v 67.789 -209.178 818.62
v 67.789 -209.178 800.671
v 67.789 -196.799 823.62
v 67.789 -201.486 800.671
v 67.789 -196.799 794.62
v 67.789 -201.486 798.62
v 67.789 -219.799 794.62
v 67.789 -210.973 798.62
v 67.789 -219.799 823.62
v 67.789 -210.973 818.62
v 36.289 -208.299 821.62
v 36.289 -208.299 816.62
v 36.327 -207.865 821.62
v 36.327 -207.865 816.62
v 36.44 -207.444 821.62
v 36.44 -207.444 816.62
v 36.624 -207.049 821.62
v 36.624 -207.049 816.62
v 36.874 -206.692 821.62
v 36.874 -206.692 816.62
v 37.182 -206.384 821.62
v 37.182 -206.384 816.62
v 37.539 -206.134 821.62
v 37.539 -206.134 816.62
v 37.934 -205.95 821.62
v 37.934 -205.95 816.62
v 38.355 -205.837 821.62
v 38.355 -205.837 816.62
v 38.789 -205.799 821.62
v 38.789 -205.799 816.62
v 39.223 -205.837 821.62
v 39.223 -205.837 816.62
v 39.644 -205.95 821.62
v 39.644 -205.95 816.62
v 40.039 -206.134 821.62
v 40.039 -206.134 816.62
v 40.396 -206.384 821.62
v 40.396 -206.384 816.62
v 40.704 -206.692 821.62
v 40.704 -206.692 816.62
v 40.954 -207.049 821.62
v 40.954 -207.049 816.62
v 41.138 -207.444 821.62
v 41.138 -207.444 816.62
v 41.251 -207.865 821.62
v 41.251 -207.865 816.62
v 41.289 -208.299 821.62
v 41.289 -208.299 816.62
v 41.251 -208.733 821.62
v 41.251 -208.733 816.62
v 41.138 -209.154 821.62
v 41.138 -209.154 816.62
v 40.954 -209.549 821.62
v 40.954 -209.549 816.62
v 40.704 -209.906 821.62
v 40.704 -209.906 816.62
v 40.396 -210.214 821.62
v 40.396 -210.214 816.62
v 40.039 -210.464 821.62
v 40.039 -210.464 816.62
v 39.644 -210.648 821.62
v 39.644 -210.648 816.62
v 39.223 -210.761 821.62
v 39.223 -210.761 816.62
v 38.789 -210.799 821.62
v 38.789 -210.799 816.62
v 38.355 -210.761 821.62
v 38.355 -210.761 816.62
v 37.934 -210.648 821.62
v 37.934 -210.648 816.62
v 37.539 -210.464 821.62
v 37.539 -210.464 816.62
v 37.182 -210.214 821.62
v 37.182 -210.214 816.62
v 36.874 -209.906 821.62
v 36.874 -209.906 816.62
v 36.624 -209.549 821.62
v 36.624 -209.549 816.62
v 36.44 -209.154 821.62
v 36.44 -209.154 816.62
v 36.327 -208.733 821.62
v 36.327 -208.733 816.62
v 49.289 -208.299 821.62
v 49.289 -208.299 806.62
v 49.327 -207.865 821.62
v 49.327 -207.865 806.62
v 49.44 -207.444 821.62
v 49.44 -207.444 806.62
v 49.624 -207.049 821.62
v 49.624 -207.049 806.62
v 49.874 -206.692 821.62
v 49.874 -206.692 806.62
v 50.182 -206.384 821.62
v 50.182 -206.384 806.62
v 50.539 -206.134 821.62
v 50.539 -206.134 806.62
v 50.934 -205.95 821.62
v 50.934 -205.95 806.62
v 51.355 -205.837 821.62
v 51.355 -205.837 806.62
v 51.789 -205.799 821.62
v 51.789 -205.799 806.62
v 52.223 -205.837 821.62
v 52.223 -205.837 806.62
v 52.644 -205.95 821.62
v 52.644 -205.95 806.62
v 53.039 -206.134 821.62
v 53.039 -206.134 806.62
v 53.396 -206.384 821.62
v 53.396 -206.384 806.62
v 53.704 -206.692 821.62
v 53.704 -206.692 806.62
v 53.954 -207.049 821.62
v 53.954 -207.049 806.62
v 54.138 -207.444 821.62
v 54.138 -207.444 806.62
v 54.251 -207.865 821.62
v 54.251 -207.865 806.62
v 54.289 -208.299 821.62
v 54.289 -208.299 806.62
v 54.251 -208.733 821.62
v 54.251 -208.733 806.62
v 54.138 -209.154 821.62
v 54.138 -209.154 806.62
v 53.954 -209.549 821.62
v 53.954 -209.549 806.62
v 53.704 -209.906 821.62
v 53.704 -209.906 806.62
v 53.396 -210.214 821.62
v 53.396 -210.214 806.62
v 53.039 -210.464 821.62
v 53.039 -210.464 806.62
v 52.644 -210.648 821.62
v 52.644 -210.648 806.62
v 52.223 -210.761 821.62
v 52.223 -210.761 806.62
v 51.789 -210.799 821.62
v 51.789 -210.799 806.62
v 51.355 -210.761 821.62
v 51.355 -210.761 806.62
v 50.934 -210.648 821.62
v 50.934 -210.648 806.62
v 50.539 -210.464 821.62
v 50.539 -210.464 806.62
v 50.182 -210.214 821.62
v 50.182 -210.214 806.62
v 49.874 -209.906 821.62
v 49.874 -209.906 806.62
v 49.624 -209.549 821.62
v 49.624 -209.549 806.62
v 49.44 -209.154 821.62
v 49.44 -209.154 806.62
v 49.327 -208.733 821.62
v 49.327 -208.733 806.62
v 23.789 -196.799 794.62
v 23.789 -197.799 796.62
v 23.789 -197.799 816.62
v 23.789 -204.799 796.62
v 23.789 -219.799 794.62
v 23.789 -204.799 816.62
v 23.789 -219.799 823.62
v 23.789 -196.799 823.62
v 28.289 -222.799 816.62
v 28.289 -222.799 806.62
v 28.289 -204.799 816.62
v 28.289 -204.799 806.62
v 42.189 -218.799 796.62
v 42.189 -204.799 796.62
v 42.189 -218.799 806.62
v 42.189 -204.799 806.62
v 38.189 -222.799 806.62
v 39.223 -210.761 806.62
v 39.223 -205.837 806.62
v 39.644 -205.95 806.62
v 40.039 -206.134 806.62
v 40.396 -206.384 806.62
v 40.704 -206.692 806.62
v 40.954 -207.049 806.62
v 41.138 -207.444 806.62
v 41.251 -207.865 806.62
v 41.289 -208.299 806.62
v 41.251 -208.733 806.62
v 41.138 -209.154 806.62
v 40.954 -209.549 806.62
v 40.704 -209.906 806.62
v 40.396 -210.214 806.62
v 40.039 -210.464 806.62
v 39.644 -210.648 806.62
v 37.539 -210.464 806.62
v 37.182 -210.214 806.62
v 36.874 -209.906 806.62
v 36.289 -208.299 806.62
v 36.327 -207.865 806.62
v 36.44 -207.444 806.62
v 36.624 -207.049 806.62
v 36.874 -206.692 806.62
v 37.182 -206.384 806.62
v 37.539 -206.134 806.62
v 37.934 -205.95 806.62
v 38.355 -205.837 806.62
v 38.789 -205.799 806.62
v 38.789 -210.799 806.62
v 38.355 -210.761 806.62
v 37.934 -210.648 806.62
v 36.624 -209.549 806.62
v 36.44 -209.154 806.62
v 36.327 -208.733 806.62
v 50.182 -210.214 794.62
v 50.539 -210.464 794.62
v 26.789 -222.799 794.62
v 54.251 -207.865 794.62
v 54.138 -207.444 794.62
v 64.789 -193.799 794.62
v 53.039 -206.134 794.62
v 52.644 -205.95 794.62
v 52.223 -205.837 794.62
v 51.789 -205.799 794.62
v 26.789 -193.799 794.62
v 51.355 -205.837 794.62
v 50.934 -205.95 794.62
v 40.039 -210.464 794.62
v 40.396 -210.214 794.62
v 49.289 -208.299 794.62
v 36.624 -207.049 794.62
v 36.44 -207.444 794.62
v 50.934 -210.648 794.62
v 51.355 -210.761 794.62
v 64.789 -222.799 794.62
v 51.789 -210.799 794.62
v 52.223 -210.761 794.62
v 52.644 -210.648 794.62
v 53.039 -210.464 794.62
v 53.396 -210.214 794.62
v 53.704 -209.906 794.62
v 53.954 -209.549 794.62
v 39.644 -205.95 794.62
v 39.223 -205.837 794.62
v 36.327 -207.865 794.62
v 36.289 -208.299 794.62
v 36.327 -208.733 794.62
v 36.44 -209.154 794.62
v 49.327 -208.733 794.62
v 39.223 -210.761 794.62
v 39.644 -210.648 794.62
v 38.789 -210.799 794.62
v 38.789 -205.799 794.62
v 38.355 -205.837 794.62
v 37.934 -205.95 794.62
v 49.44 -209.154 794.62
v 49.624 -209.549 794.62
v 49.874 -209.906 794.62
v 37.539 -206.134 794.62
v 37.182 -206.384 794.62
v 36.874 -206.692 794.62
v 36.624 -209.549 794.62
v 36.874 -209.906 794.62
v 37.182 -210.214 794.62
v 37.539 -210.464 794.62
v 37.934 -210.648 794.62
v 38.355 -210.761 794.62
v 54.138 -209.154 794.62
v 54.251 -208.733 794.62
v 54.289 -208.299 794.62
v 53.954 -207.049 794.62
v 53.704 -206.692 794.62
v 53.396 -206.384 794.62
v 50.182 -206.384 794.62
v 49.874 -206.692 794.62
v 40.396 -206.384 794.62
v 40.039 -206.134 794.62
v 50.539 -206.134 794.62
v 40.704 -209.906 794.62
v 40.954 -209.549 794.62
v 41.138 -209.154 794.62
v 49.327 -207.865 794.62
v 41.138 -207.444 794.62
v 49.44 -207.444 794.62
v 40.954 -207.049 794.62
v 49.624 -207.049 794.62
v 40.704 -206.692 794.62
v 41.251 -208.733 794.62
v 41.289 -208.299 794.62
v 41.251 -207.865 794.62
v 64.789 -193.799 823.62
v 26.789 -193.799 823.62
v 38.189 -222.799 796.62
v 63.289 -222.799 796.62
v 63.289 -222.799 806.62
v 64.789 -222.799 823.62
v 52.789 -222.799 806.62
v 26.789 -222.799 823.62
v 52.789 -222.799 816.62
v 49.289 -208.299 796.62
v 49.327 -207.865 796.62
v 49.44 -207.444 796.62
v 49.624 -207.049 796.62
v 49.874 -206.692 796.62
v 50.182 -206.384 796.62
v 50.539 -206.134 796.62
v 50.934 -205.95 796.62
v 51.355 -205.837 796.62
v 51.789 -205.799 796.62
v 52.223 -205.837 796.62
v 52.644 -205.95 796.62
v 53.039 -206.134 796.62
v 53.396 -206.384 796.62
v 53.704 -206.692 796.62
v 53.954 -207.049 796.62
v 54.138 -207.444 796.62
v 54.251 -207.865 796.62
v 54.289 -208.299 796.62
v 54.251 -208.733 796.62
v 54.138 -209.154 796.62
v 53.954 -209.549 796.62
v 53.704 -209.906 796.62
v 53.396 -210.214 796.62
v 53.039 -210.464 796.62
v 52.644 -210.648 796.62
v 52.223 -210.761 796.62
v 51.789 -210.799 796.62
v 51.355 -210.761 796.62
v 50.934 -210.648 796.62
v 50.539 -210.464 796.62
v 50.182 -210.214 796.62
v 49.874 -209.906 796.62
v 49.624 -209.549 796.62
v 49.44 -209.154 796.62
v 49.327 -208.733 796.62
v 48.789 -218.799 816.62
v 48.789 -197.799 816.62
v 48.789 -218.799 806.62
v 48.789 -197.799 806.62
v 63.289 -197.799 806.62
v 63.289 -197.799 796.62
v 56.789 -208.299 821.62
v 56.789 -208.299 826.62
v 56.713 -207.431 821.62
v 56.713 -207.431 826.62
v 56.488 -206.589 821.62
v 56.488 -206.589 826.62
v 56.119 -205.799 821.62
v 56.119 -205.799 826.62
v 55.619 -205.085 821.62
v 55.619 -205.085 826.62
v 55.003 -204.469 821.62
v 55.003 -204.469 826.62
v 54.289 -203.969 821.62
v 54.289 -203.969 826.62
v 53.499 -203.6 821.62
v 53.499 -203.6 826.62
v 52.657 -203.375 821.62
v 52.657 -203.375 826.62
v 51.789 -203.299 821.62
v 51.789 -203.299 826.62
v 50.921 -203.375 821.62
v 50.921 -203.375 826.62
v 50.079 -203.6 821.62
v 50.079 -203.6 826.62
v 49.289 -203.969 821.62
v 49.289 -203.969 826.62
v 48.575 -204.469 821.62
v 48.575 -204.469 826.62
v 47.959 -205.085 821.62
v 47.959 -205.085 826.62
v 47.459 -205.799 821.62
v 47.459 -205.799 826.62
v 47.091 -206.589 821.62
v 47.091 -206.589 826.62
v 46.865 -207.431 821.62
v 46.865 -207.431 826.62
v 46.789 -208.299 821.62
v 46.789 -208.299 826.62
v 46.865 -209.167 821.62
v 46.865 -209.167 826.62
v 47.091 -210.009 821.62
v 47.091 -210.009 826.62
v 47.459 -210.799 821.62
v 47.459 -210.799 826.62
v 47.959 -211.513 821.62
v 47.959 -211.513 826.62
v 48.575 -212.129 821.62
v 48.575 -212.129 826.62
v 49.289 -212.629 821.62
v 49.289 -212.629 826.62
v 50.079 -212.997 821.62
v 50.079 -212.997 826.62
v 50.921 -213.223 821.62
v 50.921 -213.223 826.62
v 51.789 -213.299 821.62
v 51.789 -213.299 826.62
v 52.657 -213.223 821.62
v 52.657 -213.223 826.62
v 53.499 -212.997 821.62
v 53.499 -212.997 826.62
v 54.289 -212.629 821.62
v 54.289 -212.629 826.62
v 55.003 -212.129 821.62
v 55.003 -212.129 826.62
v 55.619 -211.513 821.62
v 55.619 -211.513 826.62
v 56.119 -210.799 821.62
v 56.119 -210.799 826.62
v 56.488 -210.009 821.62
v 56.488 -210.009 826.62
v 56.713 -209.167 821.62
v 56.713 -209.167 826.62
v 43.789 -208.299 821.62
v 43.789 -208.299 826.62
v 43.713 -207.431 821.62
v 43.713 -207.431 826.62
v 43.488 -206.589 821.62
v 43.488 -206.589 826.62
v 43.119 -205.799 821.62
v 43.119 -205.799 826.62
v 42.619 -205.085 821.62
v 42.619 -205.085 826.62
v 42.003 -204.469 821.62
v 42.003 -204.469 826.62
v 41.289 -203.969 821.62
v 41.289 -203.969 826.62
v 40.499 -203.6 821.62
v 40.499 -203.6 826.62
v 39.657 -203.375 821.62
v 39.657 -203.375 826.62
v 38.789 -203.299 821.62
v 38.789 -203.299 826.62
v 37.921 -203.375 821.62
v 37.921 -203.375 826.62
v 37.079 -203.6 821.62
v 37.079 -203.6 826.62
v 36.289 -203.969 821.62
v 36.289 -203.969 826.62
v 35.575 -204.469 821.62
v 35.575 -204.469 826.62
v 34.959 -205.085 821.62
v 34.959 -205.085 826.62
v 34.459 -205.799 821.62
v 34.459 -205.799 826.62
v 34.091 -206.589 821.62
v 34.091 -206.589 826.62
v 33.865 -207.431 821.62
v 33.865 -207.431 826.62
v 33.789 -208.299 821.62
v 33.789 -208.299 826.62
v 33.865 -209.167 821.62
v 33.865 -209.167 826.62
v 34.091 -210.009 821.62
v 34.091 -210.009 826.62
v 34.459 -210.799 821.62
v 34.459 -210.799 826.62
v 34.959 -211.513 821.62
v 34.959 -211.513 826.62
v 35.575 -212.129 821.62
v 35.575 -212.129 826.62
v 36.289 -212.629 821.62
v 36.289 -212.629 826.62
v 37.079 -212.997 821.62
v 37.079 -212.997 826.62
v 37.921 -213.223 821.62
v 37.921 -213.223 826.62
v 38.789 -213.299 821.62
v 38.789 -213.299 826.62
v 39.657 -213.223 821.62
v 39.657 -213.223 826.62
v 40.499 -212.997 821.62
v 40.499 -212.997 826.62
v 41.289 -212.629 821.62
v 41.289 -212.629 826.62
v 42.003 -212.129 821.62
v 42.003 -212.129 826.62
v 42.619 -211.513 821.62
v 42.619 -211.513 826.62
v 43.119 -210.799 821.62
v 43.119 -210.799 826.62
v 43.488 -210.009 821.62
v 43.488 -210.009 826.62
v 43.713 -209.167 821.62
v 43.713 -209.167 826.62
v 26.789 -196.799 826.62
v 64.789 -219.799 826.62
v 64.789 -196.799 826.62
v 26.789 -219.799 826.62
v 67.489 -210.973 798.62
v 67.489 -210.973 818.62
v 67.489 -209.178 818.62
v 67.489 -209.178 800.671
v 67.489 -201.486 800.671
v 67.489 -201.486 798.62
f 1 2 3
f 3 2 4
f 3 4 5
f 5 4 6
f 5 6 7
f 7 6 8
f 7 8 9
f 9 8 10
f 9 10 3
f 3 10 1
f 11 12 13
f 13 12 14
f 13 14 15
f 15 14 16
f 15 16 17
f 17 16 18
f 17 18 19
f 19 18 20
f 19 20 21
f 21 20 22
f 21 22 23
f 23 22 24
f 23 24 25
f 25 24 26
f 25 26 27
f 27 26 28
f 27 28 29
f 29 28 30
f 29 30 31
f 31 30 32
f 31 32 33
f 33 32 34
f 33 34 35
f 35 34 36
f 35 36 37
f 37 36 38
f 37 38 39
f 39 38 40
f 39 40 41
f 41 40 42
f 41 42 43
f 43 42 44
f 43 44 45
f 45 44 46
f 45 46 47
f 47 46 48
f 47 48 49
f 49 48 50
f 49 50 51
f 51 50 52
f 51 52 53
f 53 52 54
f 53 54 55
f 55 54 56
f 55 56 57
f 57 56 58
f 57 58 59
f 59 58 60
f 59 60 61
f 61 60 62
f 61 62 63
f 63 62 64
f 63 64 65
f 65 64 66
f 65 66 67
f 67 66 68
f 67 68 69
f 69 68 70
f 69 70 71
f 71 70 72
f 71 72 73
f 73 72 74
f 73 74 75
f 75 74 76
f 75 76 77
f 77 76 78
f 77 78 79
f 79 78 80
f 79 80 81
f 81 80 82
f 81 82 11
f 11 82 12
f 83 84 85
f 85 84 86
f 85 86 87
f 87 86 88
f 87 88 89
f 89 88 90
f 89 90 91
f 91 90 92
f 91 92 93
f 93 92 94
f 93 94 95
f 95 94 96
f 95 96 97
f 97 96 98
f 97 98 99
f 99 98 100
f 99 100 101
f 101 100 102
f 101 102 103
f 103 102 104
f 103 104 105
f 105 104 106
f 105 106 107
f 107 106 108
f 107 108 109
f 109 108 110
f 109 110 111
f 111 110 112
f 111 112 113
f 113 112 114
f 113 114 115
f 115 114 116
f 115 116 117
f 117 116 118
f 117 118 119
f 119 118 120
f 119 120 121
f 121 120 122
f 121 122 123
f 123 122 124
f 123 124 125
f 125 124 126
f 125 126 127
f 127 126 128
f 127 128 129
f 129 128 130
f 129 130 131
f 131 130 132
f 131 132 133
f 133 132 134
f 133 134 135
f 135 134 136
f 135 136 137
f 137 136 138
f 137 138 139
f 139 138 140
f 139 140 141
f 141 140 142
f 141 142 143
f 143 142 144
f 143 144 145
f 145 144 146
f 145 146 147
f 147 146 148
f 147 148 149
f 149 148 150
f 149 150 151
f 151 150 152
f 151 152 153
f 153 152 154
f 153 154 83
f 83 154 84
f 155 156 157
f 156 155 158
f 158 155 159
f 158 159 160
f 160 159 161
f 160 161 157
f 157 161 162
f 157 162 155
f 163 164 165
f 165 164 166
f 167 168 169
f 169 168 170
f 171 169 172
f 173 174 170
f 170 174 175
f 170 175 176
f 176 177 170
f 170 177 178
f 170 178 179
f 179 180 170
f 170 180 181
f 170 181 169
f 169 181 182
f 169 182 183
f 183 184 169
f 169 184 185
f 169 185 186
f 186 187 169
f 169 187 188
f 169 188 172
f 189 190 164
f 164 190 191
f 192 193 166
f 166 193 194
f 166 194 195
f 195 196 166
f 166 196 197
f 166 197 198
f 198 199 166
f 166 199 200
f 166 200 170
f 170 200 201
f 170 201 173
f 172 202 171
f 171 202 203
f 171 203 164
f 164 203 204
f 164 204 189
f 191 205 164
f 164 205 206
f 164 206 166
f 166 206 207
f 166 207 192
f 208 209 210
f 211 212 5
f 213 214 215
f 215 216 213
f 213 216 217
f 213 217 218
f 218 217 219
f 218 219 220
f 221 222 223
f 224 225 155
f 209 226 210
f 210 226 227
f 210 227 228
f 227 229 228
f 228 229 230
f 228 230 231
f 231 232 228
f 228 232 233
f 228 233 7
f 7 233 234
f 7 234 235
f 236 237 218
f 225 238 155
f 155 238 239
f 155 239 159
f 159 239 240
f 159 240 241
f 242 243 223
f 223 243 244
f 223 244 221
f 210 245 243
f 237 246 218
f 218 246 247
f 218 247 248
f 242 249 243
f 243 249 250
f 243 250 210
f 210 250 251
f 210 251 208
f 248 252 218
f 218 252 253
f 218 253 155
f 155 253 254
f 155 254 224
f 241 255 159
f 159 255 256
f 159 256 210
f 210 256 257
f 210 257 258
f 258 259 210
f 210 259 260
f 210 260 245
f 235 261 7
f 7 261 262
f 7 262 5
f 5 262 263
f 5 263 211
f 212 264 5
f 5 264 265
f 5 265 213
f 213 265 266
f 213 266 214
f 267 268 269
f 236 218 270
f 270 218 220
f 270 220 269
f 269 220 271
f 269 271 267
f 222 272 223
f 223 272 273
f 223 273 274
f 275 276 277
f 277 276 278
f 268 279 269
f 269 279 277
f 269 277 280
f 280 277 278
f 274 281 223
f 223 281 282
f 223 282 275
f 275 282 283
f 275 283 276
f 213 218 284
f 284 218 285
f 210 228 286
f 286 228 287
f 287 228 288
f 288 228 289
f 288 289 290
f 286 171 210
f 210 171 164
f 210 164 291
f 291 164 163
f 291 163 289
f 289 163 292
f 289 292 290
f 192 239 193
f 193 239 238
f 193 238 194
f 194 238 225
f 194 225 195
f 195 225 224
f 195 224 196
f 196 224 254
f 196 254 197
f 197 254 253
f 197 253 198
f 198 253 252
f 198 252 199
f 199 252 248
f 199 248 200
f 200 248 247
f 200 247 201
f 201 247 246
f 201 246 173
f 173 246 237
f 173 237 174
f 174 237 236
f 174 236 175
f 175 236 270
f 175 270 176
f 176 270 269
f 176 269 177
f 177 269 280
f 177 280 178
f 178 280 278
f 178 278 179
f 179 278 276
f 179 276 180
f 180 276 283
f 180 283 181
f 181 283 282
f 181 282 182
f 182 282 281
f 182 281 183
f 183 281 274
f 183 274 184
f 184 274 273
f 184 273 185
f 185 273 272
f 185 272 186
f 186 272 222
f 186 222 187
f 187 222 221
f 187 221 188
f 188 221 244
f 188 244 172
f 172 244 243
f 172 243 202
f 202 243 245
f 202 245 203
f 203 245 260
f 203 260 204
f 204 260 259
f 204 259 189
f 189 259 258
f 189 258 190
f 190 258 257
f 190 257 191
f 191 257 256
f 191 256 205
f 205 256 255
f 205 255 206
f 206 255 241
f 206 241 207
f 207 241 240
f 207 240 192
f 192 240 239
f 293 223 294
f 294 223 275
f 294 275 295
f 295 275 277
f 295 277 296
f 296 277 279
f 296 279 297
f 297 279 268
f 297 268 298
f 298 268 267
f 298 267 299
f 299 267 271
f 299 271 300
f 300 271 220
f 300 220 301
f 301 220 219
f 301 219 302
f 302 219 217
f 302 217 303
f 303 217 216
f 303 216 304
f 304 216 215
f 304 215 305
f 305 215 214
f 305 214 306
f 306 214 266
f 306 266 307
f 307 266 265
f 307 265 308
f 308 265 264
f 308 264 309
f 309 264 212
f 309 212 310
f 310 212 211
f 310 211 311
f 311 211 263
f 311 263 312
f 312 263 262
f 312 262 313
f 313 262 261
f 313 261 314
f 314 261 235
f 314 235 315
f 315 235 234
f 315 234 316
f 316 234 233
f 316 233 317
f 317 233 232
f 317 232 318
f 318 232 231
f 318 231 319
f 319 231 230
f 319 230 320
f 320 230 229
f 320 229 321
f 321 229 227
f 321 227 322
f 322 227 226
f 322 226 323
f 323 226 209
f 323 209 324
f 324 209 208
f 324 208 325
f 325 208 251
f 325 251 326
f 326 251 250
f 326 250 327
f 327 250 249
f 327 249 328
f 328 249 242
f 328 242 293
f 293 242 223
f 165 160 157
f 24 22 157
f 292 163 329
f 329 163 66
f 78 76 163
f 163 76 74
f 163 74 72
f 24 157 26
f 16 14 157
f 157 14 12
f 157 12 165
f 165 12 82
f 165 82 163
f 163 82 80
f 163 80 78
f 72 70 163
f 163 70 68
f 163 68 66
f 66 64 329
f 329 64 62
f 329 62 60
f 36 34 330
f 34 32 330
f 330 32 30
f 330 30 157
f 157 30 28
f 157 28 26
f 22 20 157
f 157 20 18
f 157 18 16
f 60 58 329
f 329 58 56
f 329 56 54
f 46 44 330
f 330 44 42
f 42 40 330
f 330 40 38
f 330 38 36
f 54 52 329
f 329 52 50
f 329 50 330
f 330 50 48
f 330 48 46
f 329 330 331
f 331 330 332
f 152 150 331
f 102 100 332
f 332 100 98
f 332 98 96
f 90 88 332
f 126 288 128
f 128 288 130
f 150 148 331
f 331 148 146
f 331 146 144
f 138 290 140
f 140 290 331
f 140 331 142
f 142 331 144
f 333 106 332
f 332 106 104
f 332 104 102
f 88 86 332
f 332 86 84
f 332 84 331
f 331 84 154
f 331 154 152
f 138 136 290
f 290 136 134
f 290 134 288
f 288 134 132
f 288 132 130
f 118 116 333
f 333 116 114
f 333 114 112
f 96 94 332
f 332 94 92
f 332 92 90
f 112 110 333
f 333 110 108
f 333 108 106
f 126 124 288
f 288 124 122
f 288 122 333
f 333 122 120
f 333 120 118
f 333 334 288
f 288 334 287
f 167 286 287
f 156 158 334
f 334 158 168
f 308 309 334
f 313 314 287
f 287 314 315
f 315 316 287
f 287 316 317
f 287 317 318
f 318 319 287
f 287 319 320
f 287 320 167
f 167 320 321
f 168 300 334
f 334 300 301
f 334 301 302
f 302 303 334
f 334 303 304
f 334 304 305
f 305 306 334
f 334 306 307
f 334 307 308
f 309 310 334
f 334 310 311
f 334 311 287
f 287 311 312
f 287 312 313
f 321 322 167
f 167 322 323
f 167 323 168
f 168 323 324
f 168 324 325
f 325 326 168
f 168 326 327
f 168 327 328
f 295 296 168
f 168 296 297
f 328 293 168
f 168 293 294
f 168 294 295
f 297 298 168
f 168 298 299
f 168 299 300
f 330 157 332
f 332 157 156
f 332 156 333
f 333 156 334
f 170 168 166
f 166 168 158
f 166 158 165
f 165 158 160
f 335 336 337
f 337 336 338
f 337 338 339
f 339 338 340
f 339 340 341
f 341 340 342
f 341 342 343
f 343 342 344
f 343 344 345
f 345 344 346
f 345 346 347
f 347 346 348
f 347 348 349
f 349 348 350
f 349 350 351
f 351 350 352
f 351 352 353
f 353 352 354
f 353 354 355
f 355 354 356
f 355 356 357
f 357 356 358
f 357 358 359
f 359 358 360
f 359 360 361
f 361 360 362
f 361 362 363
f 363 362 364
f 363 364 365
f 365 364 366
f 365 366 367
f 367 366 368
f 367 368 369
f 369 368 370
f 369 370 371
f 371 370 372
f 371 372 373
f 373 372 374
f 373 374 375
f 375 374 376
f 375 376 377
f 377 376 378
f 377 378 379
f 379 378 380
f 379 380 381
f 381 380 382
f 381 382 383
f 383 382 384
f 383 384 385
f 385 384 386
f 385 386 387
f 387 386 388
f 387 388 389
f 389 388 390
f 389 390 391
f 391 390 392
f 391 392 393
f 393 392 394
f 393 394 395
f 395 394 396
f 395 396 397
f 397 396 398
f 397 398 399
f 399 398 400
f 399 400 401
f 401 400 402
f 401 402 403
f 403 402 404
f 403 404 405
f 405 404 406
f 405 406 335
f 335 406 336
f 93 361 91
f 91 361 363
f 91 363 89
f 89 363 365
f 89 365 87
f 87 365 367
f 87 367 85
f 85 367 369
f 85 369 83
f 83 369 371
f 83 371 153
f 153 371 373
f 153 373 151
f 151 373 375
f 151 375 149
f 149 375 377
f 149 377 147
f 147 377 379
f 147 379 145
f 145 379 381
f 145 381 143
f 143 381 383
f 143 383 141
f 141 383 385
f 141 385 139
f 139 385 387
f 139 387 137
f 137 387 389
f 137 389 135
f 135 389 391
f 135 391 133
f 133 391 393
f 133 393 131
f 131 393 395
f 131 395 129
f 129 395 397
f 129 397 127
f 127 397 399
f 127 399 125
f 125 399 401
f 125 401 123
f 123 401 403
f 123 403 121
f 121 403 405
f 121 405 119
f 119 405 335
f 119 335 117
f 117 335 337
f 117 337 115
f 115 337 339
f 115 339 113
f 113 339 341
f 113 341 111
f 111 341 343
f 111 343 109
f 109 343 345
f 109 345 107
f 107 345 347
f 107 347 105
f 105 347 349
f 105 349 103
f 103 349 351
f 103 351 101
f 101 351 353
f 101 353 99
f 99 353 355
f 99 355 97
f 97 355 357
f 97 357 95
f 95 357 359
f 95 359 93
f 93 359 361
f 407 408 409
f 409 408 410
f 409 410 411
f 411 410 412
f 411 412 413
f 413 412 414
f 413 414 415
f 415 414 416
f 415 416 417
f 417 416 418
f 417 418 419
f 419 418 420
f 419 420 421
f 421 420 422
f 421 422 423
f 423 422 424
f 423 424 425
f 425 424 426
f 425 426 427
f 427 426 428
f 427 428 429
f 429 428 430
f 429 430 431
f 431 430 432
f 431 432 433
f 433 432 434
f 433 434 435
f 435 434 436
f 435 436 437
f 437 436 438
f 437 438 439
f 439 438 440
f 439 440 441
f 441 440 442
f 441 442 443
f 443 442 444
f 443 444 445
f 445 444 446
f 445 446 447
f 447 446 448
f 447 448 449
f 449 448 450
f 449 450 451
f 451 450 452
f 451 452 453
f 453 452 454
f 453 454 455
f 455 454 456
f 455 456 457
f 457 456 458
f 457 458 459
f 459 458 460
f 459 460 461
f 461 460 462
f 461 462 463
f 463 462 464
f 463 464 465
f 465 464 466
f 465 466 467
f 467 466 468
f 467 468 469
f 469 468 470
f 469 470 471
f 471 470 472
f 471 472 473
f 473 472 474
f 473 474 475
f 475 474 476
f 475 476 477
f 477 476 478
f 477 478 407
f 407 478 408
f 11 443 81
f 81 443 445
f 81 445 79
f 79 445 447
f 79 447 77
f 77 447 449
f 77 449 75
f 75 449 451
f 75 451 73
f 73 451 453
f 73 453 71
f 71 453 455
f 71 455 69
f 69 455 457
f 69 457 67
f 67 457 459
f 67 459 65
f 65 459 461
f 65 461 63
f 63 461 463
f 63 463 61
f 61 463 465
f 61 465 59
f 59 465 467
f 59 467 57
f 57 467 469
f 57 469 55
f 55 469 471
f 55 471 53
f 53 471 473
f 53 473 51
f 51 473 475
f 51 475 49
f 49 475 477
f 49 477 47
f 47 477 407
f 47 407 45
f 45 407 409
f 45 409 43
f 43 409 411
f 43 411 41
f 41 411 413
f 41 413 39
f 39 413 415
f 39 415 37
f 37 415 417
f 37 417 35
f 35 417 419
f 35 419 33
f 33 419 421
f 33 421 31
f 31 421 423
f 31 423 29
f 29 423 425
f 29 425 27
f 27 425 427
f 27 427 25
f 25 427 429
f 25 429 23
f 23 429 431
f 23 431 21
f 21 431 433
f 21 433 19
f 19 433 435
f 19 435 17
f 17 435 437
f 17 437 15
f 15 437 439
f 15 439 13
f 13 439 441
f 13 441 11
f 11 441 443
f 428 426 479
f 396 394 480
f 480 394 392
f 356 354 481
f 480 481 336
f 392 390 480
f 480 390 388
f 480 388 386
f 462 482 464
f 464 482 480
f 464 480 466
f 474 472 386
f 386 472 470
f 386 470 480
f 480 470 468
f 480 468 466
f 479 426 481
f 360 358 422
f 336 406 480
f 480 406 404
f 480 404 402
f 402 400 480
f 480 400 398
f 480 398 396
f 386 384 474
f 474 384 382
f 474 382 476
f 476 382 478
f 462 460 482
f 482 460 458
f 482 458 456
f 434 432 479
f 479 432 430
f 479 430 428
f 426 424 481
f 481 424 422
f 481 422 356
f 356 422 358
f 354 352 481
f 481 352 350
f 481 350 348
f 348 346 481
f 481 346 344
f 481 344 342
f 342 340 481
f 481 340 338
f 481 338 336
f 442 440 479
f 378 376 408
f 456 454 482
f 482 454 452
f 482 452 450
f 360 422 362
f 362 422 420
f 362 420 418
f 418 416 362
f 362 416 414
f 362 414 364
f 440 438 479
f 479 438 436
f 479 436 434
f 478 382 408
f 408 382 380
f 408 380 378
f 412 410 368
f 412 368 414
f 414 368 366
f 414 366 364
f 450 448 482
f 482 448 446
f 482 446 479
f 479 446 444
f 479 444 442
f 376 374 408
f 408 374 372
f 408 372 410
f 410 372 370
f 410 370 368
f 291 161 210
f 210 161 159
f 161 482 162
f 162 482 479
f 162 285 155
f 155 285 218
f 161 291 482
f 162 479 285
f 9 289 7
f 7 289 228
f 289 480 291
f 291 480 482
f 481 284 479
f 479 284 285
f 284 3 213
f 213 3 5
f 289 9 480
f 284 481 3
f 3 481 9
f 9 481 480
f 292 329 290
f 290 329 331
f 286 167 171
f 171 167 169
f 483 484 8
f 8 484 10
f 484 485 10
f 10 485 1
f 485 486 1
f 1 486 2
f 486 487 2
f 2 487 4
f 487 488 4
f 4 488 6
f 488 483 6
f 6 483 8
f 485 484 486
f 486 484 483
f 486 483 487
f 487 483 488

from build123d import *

# Parameters (mm, degrees)
SKETCH1_W               = 44
SKETCH1_H               = 29
SKETCH1_R               = 2.5
BOSS_EXTRUDE1_DEPTH     = 30
CUT_EXTRUDE1_DEPTH      = 25
CUT_EXTRUDE2_DEPTH      = 1
CUT_EXTRUDE2_DEPTH_BACK = 30
SKETCH3_W               = 20
SKETCH3_H               = 7
SKETCH4_R               = 5
CUT_EXTRUDE3_DEPTH      = 3
THICKEN1_T1             = 2
CHAMFER1_SIZE           = 3
CHAMFER2_SIZE           = 4
CUT_EXTRUDE4_DEPTH      = 0.3


with BuildPart() as part:
    # Sketch1 → Boss-Extrude1 (new body)
    with BuildSketch(Plane.XY.offset(794.620141885)):
        with Locations((45.789156386, -208.298939869)):
            Rectangle(SKETCH1_W, SKETCH1_H)
        with Locations((38.789156386, -208.298939869)):
            Circle(SKETCH1_R, mode=Mode.SUBTRACT)
        with Locations((51.789156386, -208.298939869)):
            Circle(SKETCH1_R, mode=Mode.SUBTRACT)
    extrude(amount=BOSS_EXTRUDE1_DEPTH)

    # Sketch2 → Cut-Extrude1 (cut)
    with BuildSketch(Plane.XZ.offset(222.798939869)):
        Polygon((28.289156386, 816.620141885), (48.789156386, 816.620141885), (48.789156386, 806.620141885), (63.289156386, 806.620141885), (63.289156386, 796.620141885), (42.189156386, 796.620141885), (42.189156386, 806.620141885), (28.289156386, 806.620141885), align=None)
    extrude(amount=-CUT_EXTRUDE1_DEPTH, mode=Mode.SUBTRACT)

    # Sketch3 → Cut-Extrude2 (cut, two sides: drawn at the far end of the back side and taken through both)
    with BuildSketch(Plane(origin=(42.189156386, 0, 0), x_dir=(0, 0, -1), z_dir=(1, 0, 0)).offset(-CUT_EXTRUDE2_DEPTH_BACK)):
        with Locations((-806.620141885, -201.298939869)):
            Rectangle(SKETCH3_W, SKETCH3_H)
    extrude(amount=CUT_EXTRUDE2_DEPTH + CUT_EXTRUDE2_DEPTH_BACK, mode=Mode.SUBTRACT)

    # Sketch4 → Cut-Extrude3 (cut)
    with BuildSketch(Plane.XY.offset(824.620141885)):
        with Locations((38.789156386, -208.298939869)):
            Circle(SKETCH4_R)
        with Locations((51.789156386, -208.298939869)):
            Circle(SKETCH4_R)
    extrude(amount=-CUT_EXTRUDE3_DEPTH, mode=Mode.SUBTRACT)

    # Surface-Offset1: a surface, a copy of 1 face of the part
    surface_offset1_1 = part.part.faces().sort_by_distance((45.859348885, -208.298939869, 824.620141885))[0]
    add(Solid.thicken(surface_offset1_1, THICKEN1_T1))

    # Chamfer1
    chamfer1_edges = [part.edges().sort_by_distance(p)[0] for p in [
        (67.789156386, -222.798939869, 810.620141885),
        (23.789156386, -222.798939869, 810.620141885),
        (23.789156386, -193.798939869, 810.620141885),
        (67.789156386, -193.798939869, 810.620141885),
        (67.789156386, -208.298939869, 826.620141885),
        (45.789156386, -193.798939869, 826.620141885),
        (23.789156386, -208.298939869, 826.620141885),
        (45.789156386, -222.798939869, 826.620141885),
    ]]
    chamfer(chamfer1_edges, length=CHAMFER1_SIZE)

    # Chamfer2
    chamfer2_edges = [part.edges().sort_by_distance(p)[0] for p in [
        (42.189156386, -222.798939869, 801.620141885),
        (48.789156386, -222.798939869, 811.620141885),
    ]]
    chamfer(chamfer2_edges, length=CHAMFER2_SIZE)

    # Sketch5 → Cut-Extrude4 (cut)
    with BuildSketch(Plane(origin=(67.789156386, 0, 0), x_dir=(0, 0, -1), z_dir=(1, 0, 0))):
        Polygon((-818.620141885, -210.973121437), (-818.620141885, -209.178249642), (-800.671423936, -209.178249642), (-800.671423936, -201.48594195), (-798.620141885, -201.48594195), (-798.620141885, -210.973121437), align=None)
    extrude(amount=-CUT_EXTRUDE4_DEPTH, mode=Mode.SUBTRACT)


solid = part.part
